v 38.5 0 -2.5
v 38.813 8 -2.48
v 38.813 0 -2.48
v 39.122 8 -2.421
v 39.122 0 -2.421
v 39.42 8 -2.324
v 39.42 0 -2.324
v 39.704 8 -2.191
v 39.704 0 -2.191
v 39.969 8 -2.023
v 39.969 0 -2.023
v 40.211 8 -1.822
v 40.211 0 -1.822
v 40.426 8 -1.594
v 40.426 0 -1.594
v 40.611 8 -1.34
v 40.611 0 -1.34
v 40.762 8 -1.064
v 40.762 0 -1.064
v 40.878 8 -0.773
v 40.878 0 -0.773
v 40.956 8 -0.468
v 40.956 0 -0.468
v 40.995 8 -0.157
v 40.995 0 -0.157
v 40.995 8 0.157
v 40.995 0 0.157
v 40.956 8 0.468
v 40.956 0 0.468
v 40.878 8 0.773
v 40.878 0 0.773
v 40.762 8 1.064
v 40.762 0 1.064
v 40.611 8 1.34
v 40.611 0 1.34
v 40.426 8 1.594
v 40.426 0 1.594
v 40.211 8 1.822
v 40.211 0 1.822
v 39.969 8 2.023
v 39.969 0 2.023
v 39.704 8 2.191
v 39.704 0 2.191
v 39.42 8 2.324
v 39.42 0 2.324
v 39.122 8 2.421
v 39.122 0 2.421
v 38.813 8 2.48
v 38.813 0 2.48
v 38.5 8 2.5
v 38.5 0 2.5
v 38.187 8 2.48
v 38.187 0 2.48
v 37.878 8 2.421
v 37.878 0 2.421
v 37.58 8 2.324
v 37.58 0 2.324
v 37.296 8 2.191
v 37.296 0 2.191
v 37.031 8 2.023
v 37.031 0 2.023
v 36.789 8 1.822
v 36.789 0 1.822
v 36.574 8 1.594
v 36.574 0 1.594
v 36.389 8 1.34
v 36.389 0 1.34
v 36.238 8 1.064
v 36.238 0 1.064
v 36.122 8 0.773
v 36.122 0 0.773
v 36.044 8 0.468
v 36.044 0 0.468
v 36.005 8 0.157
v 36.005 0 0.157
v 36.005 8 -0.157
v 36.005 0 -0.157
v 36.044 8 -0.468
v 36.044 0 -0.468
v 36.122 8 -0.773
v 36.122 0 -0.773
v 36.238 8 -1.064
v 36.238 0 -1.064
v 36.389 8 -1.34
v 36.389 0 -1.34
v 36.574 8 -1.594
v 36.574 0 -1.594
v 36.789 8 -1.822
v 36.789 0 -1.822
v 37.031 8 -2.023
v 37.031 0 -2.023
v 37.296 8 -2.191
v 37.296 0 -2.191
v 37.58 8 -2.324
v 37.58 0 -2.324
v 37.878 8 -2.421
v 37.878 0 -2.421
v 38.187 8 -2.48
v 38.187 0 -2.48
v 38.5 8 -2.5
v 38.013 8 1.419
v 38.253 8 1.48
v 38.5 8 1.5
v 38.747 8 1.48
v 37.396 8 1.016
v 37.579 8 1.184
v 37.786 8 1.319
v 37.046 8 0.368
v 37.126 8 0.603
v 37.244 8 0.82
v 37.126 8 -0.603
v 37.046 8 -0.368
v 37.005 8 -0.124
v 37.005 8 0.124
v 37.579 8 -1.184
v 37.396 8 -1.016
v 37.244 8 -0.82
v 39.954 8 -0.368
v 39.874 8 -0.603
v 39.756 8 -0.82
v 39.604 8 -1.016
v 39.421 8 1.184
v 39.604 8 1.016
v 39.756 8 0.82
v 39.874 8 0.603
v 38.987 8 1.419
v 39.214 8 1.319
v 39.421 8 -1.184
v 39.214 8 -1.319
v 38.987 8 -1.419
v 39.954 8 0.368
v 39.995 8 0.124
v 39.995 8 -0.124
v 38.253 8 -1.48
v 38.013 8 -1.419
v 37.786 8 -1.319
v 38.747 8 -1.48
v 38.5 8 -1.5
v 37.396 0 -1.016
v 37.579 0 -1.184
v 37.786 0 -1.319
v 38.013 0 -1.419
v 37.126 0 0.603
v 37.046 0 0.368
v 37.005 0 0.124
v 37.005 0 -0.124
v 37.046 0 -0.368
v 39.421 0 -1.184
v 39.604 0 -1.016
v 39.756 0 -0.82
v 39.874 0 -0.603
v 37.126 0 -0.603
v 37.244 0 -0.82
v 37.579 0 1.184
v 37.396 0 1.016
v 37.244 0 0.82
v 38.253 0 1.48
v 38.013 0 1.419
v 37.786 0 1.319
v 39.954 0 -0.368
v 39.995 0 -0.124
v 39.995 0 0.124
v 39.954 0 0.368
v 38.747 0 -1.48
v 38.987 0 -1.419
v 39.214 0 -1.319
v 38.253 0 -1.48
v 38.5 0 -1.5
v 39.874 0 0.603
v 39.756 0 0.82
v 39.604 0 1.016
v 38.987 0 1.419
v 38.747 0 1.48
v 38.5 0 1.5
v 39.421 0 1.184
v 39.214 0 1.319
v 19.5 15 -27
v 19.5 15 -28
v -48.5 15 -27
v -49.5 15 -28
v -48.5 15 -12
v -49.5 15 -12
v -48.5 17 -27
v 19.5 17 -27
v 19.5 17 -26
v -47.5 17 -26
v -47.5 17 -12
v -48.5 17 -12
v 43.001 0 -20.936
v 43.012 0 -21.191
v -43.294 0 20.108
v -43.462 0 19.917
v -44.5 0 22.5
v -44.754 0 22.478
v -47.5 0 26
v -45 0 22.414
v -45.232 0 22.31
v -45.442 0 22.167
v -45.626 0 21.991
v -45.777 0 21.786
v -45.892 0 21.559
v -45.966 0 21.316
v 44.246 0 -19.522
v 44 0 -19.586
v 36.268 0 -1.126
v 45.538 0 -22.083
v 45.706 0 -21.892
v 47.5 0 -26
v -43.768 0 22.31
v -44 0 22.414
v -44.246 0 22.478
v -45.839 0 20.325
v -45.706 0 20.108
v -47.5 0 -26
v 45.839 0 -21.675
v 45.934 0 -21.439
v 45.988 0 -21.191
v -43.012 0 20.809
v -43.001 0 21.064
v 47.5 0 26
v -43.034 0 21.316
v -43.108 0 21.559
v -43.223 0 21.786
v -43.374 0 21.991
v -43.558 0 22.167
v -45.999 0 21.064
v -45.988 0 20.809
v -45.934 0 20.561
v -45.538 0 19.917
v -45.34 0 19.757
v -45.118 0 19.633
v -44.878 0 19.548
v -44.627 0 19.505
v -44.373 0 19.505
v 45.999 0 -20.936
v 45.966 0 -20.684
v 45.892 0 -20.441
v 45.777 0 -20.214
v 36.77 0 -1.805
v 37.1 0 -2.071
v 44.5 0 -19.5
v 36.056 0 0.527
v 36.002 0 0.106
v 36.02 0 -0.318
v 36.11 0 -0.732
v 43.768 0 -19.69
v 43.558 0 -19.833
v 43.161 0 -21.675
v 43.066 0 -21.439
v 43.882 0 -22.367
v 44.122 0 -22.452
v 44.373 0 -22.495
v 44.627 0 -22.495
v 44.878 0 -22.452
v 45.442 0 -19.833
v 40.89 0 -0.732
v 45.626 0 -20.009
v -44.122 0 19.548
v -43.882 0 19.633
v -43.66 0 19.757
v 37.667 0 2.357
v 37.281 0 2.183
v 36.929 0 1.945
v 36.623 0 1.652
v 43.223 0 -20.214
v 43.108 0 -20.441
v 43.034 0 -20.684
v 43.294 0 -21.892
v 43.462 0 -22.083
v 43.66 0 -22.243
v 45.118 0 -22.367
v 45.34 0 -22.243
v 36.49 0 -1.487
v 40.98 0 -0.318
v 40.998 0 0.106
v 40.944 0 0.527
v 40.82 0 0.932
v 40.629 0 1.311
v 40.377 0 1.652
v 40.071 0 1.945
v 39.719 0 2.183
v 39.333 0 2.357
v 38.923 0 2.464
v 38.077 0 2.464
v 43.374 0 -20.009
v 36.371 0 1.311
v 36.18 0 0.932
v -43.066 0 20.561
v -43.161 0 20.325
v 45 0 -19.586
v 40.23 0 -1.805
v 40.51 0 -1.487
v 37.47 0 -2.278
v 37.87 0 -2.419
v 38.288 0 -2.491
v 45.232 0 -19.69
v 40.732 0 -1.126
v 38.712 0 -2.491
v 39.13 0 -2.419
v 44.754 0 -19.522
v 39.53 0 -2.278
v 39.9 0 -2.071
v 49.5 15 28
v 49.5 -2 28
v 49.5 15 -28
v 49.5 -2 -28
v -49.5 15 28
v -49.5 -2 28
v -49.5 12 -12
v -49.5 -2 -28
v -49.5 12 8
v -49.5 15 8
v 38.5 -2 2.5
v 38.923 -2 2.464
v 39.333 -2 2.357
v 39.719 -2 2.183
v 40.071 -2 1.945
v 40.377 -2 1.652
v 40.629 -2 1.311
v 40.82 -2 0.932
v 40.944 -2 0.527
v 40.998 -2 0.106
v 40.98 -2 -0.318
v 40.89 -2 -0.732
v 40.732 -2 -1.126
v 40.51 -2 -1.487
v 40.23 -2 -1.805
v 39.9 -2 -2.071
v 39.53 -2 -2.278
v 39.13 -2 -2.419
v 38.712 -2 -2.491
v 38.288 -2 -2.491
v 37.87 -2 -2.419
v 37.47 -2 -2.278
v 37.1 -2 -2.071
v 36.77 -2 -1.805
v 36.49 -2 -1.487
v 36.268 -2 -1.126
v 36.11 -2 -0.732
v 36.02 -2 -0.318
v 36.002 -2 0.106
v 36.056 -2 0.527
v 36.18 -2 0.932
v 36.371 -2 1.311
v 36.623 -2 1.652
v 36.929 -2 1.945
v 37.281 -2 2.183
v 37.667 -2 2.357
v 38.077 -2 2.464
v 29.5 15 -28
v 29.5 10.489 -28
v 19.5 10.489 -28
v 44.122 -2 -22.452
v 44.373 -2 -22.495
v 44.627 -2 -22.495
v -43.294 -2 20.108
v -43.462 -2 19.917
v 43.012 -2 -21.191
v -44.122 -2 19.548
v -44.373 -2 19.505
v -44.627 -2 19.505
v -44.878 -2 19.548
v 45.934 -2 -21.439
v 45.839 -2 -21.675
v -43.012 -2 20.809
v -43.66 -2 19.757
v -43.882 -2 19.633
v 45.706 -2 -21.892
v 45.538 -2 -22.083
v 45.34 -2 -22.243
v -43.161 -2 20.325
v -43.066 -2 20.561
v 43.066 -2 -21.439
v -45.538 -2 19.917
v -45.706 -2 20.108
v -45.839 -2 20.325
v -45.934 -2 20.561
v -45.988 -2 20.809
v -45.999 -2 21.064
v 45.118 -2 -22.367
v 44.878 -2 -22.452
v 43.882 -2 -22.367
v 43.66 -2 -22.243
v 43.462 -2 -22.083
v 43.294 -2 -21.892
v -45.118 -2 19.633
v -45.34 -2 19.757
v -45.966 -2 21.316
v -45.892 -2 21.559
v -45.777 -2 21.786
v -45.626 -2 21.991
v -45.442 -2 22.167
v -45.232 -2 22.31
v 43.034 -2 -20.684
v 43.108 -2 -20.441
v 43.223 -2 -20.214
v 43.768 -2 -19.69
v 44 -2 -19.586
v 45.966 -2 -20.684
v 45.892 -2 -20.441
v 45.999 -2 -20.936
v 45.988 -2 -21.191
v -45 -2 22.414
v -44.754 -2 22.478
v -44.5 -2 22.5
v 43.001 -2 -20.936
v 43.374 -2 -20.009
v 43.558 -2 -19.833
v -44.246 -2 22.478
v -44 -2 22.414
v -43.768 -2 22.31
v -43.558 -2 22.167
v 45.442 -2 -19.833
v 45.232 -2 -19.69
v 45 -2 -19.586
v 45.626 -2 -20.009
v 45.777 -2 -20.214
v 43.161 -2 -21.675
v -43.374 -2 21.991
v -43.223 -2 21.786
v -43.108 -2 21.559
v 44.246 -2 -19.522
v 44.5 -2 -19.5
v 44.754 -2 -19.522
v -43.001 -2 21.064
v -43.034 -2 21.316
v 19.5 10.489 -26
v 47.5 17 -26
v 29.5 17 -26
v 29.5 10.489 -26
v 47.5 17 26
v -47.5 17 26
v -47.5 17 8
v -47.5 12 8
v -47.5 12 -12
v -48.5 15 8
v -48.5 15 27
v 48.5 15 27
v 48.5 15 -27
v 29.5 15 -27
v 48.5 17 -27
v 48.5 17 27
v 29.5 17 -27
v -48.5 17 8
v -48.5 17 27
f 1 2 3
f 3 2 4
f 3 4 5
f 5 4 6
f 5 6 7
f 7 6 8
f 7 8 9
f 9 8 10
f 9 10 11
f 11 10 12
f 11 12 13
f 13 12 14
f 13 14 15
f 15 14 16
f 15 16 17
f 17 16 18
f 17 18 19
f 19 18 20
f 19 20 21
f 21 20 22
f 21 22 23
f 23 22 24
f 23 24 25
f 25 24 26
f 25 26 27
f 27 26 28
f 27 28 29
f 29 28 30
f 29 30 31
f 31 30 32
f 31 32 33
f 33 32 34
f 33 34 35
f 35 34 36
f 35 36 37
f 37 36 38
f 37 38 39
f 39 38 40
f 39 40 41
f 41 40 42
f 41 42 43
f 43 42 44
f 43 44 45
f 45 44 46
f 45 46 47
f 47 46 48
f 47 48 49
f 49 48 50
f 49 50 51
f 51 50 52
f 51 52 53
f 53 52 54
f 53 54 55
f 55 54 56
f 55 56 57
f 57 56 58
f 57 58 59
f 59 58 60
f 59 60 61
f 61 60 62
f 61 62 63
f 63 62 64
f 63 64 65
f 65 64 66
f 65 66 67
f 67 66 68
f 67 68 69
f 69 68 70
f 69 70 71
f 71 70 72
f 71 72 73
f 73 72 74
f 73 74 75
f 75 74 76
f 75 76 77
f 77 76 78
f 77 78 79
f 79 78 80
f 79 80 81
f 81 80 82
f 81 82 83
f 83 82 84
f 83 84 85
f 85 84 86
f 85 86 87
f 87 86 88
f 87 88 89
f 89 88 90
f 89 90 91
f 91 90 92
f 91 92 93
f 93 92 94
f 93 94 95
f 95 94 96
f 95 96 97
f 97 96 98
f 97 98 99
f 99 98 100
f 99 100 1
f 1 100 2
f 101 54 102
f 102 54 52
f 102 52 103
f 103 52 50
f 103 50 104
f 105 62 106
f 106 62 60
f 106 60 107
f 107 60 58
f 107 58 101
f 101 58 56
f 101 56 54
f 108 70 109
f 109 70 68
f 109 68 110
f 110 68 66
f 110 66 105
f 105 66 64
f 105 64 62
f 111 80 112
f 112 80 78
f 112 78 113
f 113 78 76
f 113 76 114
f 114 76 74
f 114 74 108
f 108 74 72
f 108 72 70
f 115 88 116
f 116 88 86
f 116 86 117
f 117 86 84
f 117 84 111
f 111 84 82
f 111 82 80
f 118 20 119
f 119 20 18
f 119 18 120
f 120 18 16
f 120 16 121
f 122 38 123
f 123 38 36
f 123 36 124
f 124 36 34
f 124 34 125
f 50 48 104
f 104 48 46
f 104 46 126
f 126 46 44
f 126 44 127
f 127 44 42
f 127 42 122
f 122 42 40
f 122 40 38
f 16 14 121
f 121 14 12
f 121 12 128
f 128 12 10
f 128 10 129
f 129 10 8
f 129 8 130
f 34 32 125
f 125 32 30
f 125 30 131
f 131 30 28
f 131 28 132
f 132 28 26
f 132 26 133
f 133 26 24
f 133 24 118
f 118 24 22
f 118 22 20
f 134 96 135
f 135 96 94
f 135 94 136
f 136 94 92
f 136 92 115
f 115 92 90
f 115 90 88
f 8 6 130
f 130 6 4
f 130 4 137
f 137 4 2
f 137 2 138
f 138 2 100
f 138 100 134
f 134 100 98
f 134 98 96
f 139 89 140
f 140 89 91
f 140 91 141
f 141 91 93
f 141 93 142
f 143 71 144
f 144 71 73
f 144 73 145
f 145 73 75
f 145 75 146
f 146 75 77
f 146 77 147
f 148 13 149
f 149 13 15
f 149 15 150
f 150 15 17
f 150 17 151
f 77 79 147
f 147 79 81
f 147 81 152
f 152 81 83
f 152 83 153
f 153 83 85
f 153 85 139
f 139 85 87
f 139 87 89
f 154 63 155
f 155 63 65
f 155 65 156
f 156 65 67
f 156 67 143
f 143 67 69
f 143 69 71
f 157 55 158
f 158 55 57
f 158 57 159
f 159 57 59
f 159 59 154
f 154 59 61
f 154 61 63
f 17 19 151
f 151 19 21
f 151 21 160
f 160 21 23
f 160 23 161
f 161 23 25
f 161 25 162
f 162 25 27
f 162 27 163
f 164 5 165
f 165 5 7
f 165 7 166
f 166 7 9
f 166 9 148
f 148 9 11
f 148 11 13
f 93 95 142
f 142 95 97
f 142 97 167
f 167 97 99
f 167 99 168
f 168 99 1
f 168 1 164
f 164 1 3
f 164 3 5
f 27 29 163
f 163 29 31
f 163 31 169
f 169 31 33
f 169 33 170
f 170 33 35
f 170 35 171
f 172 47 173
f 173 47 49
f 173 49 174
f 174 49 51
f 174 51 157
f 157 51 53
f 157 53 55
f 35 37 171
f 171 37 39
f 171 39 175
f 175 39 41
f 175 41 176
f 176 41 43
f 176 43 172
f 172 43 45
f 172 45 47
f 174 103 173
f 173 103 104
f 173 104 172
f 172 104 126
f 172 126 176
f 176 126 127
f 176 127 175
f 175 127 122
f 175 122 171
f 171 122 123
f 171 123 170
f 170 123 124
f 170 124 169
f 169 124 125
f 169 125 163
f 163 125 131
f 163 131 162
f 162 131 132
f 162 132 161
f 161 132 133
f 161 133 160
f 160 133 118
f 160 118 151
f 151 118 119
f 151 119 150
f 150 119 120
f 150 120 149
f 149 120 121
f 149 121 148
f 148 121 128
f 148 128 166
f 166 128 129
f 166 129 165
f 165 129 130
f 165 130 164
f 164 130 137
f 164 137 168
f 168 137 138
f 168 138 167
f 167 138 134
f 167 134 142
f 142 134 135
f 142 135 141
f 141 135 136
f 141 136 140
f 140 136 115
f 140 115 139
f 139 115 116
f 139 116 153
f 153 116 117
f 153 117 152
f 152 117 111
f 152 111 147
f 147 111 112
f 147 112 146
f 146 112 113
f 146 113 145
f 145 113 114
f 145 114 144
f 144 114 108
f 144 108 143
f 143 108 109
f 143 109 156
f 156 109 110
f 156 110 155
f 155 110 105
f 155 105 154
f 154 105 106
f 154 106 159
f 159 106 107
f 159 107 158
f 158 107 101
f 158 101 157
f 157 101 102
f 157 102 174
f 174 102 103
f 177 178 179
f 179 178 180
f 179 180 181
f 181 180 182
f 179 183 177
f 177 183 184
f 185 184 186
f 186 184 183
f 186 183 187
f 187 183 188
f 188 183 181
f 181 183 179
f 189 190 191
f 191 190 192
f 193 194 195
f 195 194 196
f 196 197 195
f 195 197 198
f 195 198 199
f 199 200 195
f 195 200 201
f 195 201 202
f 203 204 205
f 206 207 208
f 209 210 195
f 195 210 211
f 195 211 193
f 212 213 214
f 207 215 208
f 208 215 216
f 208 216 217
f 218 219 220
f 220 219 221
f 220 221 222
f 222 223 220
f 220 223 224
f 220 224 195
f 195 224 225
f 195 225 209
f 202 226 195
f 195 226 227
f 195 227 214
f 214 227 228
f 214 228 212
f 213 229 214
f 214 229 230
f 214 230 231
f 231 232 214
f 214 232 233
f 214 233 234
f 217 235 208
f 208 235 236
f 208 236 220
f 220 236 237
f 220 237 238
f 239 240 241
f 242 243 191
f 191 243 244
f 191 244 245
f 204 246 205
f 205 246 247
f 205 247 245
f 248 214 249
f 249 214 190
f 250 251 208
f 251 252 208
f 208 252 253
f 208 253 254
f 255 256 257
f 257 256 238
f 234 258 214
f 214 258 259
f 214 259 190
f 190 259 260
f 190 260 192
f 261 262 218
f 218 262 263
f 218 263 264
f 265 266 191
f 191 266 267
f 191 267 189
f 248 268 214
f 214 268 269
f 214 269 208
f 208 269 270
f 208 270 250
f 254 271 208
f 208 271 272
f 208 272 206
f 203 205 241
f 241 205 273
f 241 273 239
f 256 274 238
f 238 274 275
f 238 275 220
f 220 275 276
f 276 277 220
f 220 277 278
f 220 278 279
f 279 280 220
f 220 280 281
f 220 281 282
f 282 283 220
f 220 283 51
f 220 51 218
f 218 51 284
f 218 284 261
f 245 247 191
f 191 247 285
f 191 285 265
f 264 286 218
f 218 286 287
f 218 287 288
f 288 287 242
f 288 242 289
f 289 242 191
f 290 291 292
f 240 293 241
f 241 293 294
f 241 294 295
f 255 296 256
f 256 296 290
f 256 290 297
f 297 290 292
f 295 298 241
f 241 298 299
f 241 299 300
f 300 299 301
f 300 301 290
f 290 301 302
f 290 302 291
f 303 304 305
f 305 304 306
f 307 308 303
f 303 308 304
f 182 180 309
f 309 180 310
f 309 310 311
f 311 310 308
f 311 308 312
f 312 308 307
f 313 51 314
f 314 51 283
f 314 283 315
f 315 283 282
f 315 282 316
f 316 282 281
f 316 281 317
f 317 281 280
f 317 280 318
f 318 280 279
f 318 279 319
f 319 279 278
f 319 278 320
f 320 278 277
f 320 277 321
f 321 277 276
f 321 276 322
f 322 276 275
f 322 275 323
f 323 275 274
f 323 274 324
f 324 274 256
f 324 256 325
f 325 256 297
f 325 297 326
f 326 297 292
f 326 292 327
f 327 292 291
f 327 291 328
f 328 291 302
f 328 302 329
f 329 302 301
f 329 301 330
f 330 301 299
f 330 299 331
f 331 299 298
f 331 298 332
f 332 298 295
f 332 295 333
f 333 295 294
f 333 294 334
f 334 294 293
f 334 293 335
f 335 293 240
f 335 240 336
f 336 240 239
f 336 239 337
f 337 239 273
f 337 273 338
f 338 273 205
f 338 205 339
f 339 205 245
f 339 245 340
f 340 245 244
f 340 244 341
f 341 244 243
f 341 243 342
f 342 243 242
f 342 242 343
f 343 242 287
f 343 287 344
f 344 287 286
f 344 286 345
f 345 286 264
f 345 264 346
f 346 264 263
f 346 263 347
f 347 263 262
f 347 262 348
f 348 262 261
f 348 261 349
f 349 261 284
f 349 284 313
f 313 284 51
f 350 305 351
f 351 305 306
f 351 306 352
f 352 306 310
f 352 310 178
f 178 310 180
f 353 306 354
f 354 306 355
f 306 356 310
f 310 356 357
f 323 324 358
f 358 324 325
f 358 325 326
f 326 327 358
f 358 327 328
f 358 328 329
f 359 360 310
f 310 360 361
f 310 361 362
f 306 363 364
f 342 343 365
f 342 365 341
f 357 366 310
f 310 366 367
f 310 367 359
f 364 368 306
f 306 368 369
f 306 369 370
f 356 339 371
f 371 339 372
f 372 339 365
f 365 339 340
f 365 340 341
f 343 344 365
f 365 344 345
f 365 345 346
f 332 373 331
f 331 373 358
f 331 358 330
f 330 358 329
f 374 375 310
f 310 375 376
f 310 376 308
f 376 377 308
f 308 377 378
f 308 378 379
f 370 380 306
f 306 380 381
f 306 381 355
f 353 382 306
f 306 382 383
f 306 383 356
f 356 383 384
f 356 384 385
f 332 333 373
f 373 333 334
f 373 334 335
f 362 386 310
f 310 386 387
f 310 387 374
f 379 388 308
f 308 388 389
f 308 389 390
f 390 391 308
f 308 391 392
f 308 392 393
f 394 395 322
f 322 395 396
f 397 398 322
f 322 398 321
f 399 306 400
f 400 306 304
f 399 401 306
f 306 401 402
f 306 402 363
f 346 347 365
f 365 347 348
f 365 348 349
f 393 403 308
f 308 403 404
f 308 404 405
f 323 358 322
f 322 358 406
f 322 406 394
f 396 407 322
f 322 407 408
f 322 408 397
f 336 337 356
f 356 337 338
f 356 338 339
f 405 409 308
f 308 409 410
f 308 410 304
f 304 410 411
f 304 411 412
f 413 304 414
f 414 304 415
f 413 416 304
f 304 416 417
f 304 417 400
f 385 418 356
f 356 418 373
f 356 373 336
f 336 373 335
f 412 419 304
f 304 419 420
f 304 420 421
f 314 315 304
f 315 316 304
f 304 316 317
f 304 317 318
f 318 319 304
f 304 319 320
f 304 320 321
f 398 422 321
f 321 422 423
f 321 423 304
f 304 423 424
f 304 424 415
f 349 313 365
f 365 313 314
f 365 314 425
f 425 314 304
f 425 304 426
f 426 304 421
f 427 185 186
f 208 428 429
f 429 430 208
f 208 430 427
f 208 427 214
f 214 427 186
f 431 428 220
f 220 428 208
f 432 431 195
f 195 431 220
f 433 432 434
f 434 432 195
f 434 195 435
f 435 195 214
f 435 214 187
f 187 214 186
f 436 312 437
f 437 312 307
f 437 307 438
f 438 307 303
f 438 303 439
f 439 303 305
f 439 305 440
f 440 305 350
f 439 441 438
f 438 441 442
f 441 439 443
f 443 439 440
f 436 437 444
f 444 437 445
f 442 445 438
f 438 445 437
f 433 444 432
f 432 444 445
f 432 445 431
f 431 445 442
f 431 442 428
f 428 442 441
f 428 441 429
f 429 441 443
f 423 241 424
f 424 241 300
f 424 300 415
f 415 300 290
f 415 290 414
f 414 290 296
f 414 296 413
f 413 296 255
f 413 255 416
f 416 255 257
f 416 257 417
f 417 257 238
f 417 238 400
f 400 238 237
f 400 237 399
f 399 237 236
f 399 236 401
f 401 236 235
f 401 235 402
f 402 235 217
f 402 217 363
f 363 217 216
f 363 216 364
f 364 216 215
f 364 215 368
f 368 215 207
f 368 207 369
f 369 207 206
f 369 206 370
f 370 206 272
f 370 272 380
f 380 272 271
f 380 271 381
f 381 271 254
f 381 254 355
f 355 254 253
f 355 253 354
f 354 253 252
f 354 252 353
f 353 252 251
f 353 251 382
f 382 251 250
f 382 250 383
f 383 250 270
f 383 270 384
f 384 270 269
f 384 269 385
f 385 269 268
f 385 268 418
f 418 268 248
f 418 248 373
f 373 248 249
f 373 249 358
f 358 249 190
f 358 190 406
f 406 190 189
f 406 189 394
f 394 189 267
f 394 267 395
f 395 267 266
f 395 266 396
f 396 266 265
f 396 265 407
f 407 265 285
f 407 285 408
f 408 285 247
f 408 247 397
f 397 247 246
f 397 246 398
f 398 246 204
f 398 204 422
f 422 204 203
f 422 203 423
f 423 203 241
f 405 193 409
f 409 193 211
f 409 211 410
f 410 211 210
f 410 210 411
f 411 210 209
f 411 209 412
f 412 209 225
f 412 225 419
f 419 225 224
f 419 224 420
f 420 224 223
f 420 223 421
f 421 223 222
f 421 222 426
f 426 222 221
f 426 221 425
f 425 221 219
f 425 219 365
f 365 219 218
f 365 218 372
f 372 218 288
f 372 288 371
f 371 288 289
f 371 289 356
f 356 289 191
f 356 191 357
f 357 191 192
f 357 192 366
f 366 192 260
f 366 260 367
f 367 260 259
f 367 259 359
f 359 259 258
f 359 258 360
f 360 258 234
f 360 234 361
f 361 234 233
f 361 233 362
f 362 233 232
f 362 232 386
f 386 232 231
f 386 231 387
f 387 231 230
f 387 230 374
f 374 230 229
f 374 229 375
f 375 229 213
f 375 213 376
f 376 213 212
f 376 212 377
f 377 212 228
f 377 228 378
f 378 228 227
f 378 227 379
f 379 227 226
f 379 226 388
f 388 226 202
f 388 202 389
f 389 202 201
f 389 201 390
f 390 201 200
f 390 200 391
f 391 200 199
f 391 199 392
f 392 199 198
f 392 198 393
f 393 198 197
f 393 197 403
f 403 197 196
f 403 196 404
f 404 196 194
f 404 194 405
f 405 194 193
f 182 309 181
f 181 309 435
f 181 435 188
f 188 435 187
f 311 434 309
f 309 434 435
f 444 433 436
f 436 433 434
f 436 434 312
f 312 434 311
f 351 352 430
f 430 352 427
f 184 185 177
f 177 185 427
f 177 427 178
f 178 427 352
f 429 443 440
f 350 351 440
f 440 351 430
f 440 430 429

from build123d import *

# Parameters (mm, degrees)
SKETCH1_R                         = 2.5
BOSS_EXTRUDE1_DEPTH               = 8
SKETCH1_3_W                       = 99
SKETCH1_3_H                       = 56
SKETCH1_3_W_2                     = 97
SKETCH1_3_H_2                     = 54
SKETCH1_3_W_3                     = 95
SKETCH1_3_H_3                     = 52
SKETCH1_3_R                       = 2.5
BOSS_EXTRUDE2_DEPTH               = 2
SKETCH1_5_W                       = 99
SKETCH1_5_H                       = 56
SKETCH1_5_W_2                     = 97
SKETCH1_5_H_2                     = 54
SKETCH1_5_W_3                     = 95
SKETCH1_5_H_3                     = 52
BOSS_EXTRUDE4_DEPTH               = 15
SKETCH1_6_W                       = 97
SKETCH1_6_H                       = 54
SKETCH1_6_W_2                     = 95
SKETCH1_6_H_2                     = 52
BOSS_EXTRUDE5_DEPTH               = 17
SKETCH4_W                         = 1.5
SKETCH4_H                         = 2
F_3_0_3_DIAMETER_HOLE1_AT_2_COUNT = 2
F_3_0_3_DIAMETER_HOLE1_AT_2_PITCH = 98.412397593
SKETCH8_W                         = 1.5
SKETCH8_H                         = 10
CUT_EXTRUDE1_START                = -2
SKETCH9_W                         = 20
SKETCH9_H                         = 5
CUT_EXTRUDE1_DEPTH                = 2
CUT_EXTRUDE2_START                = -2
SKETCH10_W                        = 10
SKETCH10_H                        = 6.51132948
CUT_EXTRUDE2_DEPTH                = 2


with BuildPart() as part:
    # Sketch1 → Boss-Extrude1 (new body)
    with BuildSketch(Plane(origin=(0, 0, 0), x_dir=(1, 0, 0), z_dir=(0, 1, 0))):
        with Locations(Location((38.5, 0, 0), (0, 0, 270))):
            Circle(SKETCH1_R)
    extrude(amount=BOSS_EXTRUDE1_DEPTH)

    # Sketch8 → Ø3.0 (3) Diameter Hole2 (revolve, cut)
    with BuildSketch(Plane(origin=(38.5, 8, 0), x_dir=(0, 0, 1), z_dir=(1, 0, 0))):
        with Locations((0.75, 5)):
            Rectangle(SKETCH8_W, SKETCH8_H)
    revolve(axis=Axis((38.5, 14.35, 0), (0, -1, 0)), mode=Mode.SUBTRACT)


with BuildPart() as body_2:
    # Sketch1<3> → Boss-Extrude2 (new body)
    with BuildSketch(Plane(origin=(0, 0, 0), x_dir=(1, 0, 0), z_dir=(0, 1, 0))):
        Rectangle(SKETCH1_3_W, SKETCH1_3_H)
        Rectangle(SKETCH1_3_W_2, SKETCH1_3_H_2, mode=Mode.SUBTRACT)
        Rectangle(SKETCH1_3_W_2, SKETCH1_3_H_2)
        Rectangle(SKETCH1_3_W_3, SKETCH1_3_H_3, mode=Mode.SUBTRACT)
        Rectangle(SKETCH1_3_W_3, SKETCH1_3_H_3)
        with Locations(Location((38.5, 0, 0), (0, 0, 270))):
            Circle(SKETCH1_3_R, mode=Mode.SUBTRACT)
    extrude(amount=-BOSS_EXTRUDE2_DEPTH)

    # Sketch1<5> → Boss-Extrude4 (add)
    with BuildSketch(Plane(origin=(0, 0, 0), x_dir=(1, 0, 0), z_dir=(0, 1, 0))):
        Rectangle(SKETCH1_5_W, SKETCH1_5_H)
        Rectangle(SKETCH1_5_W_2, SKETCH1_5_H_2, mode=Mode.SUBTRACT)
        Rectangle(SKETCH1_5_W_2, SKETCH1_5_H_2)
        Rectangle(SKETCH1_5_W_3, SKETCH1_5_H_3, mode=Mode.SUBTRACT)
    extrude(amount=BOSS_EXTRUDE4_DEPTH)

    # Sketch1<6> → Boss-Extrude5 (add)
    with BuildSketch(Plane(origin=(0, 0, 0), x_dir=(1, 0, 0), z_dir=(0, 1, 0))):
        Rectangle(SKETCH1_6_W, SKETCH1_6_H)
        Rectangle(SKETCH1_6_W_2, SKETCH1_6_H_2, mode=Mode.SUBTRACT)
    extrude(amount=BOSS_EXTRUDE5_DEPTH)

    # Sketch4 → Ø3.0 (3) Diameter Hole1 (revolve, cut)
    with BuildSketch(Plane(origin=(-44.5, 0, 21), x_dir=(0, 0, 1), z_dir=(1, 0, 0))):
        with Locations((0.75, 1)):
            Rectangle(SKETCH4_W, SKETCH4_H)
    f_3_0_3_diameter_hole1 = revolve(axis=Axis((-44.5, 6.35, 21), (0, -1, 0)), mode=Mode.SUBTRACT)

    # Ø3.0 (3) Diameter Hole1 at 2: Ø3.0 (3) Diameter Hole1 ×2
    with Locations(*[Vector(0.9043576030744216, 0, -0.42677549808006415) * (i * F_3_0_3_DIAMETER_HOLE1_AT_2_PITCH) for i in range(1, F_3_0_3_DIAMETER_HOLE1_AT_2_COUNT)]):
        add(f_3_0_3_diameter_hole1, mode=Mode.SUBTRACT)

    # Sketch9 → Cut-Extrude1 (cut)
    with BuildSketch(Plane.ZY.offset(49.5).offset(CUT_EXTRUDE1_START)):
        with Locations((-2, 14.5)):
            Rectangle(SKETCH9_W, SKETCH9_H)
    extrude(amount=CUT_EXTRUDE1_DEPTH, mode=Mode.SUBTRACT)

    # Sketch10 → Cut-Extrude2 (cut)
    with BuildSketch(Plane(origin=(0, 0, -28), x_dir=(-1, 0, 0), z_dir=(0, 0, -1)).offset(CUT_EXTRUDE2_START)):
        with Locations((-24.5, 13.74433526)):
            Rectangle(SKETCH10_W, SKETCH10_H)
    extrude(amount=CUT_EXTRUDE2_DEPTH, mode=Mode.SUBTRACT)


solid = Compound([part.part, body_2.part])
